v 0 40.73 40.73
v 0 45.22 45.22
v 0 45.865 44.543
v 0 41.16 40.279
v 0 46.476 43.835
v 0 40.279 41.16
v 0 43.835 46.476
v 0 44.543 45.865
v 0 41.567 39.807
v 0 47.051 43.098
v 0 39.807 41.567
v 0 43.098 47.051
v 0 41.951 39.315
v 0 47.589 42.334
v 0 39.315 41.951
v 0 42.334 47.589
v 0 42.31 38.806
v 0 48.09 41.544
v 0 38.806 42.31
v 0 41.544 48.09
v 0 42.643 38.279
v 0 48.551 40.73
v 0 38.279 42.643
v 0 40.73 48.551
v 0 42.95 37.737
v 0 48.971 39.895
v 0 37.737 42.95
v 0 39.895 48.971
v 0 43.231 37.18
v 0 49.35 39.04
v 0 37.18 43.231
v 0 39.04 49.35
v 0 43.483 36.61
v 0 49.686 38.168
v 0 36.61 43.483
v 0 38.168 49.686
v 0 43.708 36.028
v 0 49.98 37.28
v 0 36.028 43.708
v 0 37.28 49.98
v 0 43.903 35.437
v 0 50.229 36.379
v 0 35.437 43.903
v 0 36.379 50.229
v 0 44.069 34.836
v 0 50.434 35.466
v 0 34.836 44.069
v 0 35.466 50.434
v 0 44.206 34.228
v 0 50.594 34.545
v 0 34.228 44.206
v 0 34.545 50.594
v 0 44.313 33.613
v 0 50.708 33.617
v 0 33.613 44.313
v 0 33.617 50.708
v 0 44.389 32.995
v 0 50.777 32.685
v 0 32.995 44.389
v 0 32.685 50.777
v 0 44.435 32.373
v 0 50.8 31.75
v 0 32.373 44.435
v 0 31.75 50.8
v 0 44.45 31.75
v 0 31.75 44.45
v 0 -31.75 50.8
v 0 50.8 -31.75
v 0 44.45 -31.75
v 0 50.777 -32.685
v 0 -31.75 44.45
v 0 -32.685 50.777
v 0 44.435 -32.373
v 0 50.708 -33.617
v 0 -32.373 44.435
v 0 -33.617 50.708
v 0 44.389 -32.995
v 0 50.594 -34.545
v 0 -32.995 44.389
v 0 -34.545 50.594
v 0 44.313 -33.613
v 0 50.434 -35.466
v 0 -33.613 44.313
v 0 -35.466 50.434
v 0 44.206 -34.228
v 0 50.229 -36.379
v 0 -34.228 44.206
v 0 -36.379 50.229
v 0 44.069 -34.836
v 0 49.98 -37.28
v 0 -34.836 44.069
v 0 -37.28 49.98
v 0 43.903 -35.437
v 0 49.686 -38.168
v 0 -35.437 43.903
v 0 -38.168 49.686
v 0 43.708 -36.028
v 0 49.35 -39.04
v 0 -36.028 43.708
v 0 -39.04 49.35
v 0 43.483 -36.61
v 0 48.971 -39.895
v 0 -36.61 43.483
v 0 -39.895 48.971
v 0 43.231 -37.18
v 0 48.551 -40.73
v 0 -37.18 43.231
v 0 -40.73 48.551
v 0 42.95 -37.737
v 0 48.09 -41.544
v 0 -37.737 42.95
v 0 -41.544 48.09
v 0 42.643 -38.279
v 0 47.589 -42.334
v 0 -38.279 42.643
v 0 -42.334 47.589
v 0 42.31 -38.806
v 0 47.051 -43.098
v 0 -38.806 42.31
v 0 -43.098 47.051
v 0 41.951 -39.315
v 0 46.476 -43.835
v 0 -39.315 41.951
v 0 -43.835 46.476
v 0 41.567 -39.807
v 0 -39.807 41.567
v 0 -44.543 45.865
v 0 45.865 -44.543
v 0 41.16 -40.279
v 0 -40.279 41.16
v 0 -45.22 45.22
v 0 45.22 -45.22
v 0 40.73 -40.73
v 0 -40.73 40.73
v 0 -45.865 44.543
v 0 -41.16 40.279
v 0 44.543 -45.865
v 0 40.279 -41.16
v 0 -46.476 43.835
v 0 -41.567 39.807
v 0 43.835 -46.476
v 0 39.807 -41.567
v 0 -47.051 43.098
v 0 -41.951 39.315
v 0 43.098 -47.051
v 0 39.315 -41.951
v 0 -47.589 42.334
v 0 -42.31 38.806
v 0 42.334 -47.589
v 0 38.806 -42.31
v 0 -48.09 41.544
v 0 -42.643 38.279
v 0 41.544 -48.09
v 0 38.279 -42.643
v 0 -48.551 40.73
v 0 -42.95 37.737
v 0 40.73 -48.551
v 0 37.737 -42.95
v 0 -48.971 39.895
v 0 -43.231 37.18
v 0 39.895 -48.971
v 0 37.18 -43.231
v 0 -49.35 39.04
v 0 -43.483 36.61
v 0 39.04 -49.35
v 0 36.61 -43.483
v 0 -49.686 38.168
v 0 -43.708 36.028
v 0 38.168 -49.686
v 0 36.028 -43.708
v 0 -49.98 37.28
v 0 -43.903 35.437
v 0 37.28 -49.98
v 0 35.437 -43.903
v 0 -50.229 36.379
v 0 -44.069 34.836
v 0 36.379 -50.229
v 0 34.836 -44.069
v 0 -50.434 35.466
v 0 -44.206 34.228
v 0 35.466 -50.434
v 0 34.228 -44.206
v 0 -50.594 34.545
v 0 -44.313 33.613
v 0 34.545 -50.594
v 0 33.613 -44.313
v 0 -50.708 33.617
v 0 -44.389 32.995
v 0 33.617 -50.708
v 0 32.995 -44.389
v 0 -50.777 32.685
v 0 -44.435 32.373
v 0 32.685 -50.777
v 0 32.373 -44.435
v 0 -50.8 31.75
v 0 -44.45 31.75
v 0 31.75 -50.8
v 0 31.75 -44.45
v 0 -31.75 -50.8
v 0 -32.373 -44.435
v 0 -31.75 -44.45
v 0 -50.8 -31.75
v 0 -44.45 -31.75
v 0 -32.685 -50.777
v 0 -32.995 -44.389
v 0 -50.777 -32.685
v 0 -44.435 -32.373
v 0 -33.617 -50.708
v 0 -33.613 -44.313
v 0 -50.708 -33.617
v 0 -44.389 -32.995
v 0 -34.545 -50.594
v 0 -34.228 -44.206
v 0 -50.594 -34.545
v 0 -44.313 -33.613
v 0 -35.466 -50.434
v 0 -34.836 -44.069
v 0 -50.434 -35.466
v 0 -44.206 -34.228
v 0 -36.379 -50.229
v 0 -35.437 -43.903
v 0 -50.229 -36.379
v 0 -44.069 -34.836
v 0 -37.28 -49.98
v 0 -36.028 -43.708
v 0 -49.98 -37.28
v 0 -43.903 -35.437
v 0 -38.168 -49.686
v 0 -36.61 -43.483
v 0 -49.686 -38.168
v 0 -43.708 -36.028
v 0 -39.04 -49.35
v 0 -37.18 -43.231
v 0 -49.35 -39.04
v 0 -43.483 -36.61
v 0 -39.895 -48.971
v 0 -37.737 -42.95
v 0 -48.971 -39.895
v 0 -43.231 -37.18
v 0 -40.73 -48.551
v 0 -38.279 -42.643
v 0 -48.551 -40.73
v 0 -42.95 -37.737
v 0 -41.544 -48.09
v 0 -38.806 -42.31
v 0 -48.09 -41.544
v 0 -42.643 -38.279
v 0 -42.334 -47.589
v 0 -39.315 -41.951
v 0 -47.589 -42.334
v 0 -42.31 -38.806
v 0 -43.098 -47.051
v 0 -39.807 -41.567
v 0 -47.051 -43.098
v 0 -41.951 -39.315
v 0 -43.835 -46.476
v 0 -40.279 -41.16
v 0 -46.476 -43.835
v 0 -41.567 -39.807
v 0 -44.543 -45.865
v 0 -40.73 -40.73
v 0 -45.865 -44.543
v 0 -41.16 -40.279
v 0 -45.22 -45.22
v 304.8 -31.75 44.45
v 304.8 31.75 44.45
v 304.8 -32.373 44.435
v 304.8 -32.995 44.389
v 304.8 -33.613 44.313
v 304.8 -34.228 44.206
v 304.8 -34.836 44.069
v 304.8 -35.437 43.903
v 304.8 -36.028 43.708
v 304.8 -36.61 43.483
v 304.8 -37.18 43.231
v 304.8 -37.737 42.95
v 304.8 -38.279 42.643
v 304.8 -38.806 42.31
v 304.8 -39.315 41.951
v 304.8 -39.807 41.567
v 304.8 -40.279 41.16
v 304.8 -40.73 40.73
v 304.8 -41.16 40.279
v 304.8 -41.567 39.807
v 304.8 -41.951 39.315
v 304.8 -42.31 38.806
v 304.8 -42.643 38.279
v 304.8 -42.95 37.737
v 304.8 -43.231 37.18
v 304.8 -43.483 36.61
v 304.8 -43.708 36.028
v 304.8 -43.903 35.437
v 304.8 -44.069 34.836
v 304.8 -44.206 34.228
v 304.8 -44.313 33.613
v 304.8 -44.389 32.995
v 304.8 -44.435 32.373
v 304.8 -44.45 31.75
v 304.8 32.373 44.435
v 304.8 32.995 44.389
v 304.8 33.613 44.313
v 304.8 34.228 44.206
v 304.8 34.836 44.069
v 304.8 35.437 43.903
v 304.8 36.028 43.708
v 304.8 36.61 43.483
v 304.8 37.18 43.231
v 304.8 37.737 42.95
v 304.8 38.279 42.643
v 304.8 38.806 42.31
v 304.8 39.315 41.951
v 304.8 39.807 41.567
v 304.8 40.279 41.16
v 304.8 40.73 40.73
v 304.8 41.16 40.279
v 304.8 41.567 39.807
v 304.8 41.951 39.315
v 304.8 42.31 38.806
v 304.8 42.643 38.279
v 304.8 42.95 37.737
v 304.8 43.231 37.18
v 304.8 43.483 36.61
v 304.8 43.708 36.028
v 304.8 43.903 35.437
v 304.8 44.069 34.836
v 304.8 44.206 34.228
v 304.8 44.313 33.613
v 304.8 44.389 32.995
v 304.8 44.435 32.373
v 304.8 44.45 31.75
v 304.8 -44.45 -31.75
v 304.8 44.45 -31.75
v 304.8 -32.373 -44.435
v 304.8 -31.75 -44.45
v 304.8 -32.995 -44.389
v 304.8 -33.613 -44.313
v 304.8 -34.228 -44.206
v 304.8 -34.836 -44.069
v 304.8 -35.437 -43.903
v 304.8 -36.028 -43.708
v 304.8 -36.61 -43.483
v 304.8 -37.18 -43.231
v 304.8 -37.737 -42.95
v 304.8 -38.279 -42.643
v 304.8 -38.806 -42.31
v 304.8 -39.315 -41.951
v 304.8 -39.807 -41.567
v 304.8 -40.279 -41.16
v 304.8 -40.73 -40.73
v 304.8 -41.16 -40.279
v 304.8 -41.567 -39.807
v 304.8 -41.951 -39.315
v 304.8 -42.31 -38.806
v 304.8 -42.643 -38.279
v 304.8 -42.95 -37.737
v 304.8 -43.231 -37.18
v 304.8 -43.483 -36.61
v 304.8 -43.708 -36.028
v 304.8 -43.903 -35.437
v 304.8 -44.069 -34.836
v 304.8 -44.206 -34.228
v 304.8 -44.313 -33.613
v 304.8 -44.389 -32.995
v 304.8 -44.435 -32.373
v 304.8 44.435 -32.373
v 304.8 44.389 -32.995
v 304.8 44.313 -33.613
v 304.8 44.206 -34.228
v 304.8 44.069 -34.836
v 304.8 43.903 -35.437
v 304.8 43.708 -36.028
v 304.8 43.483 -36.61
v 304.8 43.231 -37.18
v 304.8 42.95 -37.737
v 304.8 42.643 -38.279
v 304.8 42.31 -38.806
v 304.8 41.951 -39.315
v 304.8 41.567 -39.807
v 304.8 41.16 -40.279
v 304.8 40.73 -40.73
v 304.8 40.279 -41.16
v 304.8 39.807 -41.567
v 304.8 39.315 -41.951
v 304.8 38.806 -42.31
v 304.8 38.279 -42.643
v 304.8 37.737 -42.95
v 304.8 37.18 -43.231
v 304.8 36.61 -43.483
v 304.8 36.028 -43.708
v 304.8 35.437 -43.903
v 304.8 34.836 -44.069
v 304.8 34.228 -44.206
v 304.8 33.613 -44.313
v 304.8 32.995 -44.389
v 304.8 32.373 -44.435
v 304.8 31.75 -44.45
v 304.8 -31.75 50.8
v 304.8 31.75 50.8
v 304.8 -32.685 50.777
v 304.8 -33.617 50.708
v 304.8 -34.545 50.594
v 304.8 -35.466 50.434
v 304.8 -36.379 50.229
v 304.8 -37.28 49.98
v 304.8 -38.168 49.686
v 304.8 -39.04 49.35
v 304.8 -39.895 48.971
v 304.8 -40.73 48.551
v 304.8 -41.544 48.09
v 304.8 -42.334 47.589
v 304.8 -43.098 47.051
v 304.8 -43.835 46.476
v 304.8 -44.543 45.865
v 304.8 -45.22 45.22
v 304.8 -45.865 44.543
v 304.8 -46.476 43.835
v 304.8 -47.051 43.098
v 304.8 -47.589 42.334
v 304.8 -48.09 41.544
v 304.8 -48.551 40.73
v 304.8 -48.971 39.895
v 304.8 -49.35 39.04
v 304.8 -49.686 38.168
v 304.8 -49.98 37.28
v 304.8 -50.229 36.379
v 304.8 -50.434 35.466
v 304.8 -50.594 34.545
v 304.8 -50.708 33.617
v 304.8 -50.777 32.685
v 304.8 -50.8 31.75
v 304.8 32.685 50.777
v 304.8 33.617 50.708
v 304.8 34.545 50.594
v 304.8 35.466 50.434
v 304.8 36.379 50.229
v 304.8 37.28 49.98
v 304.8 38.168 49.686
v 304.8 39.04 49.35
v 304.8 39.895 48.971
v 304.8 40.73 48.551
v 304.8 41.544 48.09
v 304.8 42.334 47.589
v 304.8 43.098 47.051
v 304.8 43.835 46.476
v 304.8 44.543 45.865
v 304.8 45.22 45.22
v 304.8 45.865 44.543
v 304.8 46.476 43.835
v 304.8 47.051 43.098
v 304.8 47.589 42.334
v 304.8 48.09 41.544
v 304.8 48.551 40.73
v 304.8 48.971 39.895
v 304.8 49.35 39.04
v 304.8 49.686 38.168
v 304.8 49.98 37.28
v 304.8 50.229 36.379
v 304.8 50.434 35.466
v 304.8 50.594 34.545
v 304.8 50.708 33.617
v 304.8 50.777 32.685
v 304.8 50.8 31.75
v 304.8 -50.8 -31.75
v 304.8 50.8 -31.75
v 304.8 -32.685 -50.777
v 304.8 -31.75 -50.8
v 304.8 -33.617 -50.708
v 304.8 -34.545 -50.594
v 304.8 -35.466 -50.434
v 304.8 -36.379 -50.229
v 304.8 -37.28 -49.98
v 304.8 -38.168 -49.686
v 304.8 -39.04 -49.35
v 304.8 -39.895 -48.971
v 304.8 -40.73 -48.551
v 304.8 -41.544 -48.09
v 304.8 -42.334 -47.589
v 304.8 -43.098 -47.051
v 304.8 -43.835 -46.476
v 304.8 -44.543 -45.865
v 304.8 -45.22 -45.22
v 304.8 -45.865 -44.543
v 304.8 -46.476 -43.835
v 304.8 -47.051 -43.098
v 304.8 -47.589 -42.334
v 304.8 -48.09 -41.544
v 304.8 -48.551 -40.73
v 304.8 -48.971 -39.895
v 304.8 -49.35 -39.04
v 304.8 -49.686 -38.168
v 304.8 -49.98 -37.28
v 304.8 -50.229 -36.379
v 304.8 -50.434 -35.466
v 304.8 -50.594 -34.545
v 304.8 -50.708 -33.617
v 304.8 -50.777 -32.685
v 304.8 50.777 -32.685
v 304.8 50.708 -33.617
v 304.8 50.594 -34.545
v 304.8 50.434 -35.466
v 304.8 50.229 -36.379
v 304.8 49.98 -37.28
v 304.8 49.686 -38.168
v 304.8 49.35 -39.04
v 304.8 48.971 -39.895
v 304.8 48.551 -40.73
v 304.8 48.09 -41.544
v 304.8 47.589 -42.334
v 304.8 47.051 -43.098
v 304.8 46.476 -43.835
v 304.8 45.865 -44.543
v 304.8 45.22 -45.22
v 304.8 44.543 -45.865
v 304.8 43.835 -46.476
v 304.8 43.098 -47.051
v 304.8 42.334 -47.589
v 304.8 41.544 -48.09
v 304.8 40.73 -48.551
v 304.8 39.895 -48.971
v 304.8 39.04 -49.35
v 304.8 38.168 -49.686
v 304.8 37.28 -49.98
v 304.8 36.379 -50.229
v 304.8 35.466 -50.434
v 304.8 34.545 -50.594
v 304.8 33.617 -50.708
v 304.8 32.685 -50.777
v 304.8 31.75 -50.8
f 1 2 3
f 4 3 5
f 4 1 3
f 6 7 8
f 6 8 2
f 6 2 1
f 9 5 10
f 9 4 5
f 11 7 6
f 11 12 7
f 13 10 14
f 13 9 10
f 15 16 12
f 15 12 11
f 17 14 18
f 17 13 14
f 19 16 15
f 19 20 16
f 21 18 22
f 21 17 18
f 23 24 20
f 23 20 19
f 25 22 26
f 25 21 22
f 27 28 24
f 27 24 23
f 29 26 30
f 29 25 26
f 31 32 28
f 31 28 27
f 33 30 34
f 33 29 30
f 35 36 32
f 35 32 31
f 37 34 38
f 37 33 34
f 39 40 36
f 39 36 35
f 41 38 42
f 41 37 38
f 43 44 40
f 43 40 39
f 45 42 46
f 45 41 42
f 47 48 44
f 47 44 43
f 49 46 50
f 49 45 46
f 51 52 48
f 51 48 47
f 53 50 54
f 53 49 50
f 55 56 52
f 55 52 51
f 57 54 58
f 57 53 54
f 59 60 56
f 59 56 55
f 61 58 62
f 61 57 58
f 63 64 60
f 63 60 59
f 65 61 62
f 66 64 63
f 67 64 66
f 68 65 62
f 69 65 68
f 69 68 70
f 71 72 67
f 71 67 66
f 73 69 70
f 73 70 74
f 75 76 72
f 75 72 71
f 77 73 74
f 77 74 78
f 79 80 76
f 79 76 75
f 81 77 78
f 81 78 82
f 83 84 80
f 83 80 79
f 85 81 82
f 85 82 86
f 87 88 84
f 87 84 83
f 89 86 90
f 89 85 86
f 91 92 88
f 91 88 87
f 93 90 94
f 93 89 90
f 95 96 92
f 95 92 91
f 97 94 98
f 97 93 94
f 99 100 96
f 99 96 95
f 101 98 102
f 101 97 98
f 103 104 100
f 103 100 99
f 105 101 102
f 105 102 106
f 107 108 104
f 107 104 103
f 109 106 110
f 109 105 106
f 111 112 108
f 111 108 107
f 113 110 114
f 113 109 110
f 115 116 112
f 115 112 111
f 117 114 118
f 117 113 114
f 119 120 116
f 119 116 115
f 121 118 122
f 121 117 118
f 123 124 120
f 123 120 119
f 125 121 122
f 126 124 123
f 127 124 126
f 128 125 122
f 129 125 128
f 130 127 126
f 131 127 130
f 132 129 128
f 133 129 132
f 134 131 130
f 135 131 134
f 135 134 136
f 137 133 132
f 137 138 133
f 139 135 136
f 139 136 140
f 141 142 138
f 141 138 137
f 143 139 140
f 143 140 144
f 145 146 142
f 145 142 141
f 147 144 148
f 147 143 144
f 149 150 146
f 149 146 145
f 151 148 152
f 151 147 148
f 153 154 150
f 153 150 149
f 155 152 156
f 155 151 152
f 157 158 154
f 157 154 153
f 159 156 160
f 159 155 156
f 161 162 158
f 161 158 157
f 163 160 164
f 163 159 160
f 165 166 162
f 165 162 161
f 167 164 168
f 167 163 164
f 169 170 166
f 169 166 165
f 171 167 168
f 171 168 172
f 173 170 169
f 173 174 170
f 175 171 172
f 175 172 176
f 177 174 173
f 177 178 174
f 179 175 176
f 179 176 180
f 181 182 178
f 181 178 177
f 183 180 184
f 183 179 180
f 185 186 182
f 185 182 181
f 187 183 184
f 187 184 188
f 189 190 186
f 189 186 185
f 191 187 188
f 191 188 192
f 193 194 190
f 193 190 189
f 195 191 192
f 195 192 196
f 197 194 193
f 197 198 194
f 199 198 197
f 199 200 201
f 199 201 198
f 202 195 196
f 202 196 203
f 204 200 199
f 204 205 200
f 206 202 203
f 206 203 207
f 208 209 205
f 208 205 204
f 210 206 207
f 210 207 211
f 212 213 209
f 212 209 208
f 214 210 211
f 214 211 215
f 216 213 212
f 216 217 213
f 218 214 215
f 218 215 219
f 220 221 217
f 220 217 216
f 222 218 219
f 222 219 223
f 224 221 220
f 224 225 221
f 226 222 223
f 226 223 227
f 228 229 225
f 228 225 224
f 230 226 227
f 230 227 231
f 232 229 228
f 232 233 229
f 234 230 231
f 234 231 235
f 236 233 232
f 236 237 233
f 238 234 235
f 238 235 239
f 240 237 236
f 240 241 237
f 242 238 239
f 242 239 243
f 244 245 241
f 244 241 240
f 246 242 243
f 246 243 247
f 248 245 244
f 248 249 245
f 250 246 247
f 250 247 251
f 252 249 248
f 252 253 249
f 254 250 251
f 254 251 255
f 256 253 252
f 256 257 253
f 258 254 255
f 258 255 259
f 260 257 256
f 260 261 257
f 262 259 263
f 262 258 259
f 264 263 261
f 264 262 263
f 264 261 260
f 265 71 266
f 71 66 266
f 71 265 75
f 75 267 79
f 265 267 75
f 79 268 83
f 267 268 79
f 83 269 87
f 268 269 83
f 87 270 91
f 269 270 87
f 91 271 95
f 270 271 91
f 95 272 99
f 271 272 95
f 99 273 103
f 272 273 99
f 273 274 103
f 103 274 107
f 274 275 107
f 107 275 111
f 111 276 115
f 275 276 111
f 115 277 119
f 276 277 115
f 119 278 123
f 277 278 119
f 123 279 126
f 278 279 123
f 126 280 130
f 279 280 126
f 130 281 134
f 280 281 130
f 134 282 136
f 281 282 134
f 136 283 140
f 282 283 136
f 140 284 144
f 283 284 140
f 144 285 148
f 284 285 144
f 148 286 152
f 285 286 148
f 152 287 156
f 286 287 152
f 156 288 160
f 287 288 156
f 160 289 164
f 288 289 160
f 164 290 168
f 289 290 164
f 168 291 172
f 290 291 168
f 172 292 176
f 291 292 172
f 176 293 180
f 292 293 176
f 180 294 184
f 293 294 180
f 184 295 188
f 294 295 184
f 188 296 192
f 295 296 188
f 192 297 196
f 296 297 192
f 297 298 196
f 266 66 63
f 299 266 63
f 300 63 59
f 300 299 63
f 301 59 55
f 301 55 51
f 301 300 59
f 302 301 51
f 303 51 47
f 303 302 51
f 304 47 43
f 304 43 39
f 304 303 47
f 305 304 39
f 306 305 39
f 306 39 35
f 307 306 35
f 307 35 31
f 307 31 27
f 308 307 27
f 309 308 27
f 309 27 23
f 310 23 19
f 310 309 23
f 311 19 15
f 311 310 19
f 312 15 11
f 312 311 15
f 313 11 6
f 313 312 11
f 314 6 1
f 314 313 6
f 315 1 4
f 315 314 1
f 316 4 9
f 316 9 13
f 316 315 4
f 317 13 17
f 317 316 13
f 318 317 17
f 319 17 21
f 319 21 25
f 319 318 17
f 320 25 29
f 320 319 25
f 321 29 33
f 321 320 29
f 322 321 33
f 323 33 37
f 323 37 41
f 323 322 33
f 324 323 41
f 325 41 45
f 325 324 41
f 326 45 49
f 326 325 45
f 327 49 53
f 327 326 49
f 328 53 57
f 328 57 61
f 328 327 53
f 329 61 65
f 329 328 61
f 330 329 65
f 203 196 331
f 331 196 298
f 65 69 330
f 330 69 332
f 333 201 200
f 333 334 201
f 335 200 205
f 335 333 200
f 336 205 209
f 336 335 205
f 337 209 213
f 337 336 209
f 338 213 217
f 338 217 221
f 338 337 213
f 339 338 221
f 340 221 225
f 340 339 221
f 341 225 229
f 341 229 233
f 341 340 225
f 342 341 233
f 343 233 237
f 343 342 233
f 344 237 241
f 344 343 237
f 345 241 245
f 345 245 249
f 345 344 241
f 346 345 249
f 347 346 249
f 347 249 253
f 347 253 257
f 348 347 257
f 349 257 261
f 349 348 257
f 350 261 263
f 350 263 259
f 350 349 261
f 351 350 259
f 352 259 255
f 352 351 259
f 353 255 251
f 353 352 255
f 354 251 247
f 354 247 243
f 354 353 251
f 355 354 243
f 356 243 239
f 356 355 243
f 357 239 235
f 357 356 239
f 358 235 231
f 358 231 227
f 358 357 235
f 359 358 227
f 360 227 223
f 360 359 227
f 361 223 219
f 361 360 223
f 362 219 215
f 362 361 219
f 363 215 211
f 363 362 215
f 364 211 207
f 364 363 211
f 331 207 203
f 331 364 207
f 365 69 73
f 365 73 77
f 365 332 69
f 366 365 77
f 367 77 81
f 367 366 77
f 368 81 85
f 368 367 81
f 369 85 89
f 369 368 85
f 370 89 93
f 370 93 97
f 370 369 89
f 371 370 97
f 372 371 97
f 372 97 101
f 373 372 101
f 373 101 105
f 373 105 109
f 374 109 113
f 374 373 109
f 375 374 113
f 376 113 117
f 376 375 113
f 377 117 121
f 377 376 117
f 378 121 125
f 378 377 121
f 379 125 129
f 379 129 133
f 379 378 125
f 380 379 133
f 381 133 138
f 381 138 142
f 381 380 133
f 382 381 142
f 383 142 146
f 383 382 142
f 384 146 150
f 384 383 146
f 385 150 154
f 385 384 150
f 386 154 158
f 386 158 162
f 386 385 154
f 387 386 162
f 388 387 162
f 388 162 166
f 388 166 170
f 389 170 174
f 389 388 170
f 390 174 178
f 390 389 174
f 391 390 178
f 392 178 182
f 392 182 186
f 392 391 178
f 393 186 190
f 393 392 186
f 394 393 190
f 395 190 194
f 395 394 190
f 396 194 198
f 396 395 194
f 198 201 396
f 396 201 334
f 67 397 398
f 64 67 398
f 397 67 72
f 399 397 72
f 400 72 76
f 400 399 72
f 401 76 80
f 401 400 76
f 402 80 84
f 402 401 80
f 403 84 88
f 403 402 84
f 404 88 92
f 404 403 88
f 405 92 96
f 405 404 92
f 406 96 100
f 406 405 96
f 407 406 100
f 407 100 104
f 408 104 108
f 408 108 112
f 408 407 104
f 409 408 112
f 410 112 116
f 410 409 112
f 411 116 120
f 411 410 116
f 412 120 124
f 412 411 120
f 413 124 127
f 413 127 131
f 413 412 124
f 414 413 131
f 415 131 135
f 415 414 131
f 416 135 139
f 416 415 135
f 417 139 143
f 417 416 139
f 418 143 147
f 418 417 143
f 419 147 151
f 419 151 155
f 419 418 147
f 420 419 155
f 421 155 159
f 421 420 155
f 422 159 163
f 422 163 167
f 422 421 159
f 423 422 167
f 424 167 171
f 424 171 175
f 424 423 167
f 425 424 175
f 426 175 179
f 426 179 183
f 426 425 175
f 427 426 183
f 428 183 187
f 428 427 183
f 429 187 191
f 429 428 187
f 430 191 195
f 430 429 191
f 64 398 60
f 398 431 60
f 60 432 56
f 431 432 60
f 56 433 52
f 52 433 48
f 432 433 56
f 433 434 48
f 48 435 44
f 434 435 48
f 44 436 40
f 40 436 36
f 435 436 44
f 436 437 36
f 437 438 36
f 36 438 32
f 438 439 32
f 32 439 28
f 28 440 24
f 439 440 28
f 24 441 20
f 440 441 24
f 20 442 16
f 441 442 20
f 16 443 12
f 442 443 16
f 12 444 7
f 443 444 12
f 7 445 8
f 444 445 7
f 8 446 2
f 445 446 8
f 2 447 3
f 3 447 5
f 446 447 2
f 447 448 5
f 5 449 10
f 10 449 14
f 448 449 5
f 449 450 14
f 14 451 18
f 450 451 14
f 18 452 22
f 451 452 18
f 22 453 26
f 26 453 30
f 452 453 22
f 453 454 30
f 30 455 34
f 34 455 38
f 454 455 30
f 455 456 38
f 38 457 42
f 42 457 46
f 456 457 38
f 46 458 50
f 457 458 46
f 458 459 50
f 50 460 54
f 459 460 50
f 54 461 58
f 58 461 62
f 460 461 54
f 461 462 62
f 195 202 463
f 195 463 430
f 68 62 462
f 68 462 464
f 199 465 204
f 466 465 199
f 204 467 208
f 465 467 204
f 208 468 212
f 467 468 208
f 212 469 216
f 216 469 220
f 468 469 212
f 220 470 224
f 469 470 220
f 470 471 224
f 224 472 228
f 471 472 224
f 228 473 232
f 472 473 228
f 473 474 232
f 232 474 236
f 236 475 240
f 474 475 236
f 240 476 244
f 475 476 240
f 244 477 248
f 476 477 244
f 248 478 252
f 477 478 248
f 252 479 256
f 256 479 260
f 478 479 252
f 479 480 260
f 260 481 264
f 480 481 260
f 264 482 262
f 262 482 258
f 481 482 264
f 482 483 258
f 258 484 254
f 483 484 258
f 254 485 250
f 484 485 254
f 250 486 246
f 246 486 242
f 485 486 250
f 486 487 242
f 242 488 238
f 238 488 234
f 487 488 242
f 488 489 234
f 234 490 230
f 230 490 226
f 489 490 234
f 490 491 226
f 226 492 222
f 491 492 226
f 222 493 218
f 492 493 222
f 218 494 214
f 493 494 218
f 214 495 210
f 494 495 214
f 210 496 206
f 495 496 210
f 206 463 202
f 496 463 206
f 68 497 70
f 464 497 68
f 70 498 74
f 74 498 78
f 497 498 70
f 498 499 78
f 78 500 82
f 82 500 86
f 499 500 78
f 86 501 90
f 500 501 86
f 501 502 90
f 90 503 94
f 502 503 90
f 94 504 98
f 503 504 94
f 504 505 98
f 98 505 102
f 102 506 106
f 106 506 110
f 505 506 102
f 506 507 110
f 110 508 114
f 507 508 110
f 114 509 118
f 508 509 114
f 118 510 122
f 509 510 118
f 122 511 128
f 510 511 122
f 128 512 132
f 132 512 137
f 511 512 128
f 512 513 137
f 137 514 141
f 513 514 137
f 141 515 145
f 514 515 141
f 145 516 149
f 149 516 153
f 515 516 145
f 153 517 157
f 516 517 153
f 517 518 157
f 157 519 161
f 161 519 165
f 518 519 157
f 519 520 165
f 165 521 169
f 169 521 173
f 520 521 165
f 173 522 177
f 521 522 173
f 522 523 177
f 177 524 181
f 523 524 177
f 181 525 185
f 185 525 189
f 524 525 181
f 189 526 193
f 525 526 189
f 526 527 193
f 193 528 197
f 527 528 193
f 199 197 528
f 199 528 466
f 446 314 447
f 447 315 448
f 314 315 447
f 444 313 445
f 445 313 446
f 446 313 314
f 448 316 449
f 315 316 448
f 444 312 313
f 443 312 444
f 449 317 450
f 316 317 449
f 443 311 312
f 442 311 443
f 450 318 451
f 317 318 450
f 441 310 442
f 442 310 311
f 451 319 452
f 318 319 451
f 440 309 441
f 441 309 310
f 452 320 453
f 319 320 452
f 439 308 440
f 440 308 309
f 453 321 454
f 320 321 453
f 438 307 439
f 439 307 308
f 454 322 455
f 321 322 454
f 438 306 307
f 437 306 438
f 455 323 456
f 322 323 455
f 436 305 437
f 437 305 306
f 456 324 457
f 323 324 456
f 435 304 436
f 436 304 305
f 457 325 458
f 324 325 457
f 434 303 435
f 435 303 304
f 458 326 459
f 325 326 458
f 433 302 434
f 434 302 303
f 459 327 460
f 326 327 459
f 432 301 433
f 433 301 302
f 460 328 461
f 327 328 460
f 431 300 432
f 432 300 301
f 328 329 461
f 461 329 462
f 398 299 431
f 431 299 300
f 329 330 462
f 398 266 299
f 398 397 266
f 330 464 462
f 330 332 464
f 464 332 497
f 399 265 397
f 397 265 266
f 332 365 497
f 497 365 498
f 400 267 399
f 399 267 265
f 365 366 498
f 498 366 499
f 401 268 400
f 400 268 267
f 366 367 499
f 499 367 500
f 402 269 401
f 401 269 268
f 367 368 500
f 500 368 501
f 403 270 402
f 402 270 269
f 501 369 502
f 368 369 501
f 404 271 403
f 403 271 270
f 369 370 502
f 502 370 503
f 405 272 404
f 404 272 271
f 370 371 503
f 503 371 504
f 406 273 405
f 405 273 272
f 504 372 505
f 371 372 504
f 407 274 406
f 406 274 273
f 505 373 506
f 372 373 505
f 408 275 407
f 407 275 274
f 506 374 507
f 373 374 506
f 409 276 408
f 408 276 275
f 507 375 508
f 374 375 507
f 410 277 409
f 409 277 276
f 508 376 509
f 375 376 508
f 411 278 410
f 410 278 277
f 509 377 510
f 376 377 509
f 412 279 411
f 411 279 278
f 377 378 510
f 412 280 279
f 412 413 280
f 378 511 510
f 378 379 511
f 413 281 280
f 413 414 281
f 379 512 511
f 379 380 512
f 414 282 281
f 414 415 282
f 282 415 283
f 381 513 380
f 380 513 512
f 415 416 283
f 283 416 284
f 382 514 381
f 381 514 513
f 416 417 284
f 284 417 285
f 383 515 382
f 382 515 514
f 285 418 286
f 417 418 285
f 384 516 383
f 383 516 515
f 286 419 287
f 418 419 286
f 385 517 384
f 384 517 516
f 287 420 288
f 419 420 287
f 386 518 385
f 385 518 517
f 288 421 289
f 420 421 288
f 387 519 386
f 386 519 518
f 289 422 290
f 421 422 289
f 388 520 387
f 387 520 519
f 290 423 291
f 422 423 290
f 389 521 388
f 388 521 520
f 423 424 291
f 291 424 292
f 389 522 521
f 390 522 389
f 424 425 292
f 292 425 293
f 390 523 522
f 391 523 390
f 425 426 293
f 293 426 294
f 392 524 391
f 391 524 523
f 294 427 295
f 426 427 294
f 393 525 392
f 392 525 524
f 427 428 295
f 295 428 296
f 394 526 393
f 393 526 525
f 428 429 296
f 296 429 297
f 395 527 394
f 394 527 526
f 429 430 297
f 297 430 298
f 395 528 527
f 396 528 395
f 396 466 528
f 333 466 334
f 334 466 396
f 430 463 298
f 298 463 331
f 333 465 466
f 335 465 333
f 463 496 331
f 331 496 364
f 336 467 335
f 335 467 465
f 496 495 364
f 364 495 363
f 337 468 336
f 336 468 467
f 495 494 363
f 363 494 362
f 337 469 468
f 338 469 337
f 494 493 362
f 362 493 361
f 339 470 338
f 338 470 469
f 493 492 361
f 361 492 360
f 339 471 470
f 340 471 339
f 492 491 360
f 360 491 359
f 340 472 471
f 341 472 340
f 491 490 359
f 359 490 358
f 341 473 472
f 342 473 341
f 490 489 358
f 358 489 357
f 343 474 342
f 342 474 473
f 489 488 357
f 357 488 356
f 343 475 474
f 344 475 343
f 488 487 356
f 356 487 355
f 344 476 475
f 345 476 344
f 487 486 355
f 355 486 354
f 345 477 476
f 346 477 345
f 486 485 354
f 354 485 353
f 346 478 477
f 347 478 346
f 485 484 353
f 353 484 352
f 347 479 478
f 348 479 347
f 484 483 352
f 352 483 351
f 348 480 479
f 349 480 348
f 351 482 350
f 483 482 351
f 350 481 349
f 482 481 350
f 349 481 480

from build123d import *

# Parameters (mm, degrees)
SKETCH_W     = 101.6
SKETCH_H     = 101.6
PAD_DEPTH    = 304.8
FILLET_R     = 19.05
SKETCH001_W  = 88.9
SKETCH001_H  = 88.9
POCKET_DEPTH = 304.801
FILLET001_R  = 12.7


with BuildPart() as part:
    # Sketch → Pad (new body)
    with BuildSketch(Plane.YZ):
        Rectangle(SKETCH_W, SKETCH_H)
    extrude(amount=PAD_DEPTH)

    # Fillet
    fillet_edges = [part.edges().sort_by_distance(p)[0] for p in [
        (152.4, 50.8, 50.8),
        (152.4, -50.8, 50.8),
        (152.4, 50.8, -50.8),
        (152.4, -50.8, -50.8),
    ]]
    fillet(fillet_edges, radius=FILLET_R)

    # Sketch001 → Pocket (cut, through all)
    with BuildSketch(Plane.YZ):
        Rectangle(SKETCH001_W, SKETCH001_H)
    extrude(amount=POCKET_DEPTH, mode=Mode.SUBTRACT)

    # Fillet001
    fillet001_edges = [part.edges().sort_by_distance(p)[0] for p in [
        (152.4, -44.45, -44.45),
        (152.4, -44.45, 44.45),
        (152.4, 44.45, 44.45),
        (152.4, 44.45, -44.45),
    ]]
    fillet(fillet001_edges, radius=FILLET001_R)


solid = part.part
